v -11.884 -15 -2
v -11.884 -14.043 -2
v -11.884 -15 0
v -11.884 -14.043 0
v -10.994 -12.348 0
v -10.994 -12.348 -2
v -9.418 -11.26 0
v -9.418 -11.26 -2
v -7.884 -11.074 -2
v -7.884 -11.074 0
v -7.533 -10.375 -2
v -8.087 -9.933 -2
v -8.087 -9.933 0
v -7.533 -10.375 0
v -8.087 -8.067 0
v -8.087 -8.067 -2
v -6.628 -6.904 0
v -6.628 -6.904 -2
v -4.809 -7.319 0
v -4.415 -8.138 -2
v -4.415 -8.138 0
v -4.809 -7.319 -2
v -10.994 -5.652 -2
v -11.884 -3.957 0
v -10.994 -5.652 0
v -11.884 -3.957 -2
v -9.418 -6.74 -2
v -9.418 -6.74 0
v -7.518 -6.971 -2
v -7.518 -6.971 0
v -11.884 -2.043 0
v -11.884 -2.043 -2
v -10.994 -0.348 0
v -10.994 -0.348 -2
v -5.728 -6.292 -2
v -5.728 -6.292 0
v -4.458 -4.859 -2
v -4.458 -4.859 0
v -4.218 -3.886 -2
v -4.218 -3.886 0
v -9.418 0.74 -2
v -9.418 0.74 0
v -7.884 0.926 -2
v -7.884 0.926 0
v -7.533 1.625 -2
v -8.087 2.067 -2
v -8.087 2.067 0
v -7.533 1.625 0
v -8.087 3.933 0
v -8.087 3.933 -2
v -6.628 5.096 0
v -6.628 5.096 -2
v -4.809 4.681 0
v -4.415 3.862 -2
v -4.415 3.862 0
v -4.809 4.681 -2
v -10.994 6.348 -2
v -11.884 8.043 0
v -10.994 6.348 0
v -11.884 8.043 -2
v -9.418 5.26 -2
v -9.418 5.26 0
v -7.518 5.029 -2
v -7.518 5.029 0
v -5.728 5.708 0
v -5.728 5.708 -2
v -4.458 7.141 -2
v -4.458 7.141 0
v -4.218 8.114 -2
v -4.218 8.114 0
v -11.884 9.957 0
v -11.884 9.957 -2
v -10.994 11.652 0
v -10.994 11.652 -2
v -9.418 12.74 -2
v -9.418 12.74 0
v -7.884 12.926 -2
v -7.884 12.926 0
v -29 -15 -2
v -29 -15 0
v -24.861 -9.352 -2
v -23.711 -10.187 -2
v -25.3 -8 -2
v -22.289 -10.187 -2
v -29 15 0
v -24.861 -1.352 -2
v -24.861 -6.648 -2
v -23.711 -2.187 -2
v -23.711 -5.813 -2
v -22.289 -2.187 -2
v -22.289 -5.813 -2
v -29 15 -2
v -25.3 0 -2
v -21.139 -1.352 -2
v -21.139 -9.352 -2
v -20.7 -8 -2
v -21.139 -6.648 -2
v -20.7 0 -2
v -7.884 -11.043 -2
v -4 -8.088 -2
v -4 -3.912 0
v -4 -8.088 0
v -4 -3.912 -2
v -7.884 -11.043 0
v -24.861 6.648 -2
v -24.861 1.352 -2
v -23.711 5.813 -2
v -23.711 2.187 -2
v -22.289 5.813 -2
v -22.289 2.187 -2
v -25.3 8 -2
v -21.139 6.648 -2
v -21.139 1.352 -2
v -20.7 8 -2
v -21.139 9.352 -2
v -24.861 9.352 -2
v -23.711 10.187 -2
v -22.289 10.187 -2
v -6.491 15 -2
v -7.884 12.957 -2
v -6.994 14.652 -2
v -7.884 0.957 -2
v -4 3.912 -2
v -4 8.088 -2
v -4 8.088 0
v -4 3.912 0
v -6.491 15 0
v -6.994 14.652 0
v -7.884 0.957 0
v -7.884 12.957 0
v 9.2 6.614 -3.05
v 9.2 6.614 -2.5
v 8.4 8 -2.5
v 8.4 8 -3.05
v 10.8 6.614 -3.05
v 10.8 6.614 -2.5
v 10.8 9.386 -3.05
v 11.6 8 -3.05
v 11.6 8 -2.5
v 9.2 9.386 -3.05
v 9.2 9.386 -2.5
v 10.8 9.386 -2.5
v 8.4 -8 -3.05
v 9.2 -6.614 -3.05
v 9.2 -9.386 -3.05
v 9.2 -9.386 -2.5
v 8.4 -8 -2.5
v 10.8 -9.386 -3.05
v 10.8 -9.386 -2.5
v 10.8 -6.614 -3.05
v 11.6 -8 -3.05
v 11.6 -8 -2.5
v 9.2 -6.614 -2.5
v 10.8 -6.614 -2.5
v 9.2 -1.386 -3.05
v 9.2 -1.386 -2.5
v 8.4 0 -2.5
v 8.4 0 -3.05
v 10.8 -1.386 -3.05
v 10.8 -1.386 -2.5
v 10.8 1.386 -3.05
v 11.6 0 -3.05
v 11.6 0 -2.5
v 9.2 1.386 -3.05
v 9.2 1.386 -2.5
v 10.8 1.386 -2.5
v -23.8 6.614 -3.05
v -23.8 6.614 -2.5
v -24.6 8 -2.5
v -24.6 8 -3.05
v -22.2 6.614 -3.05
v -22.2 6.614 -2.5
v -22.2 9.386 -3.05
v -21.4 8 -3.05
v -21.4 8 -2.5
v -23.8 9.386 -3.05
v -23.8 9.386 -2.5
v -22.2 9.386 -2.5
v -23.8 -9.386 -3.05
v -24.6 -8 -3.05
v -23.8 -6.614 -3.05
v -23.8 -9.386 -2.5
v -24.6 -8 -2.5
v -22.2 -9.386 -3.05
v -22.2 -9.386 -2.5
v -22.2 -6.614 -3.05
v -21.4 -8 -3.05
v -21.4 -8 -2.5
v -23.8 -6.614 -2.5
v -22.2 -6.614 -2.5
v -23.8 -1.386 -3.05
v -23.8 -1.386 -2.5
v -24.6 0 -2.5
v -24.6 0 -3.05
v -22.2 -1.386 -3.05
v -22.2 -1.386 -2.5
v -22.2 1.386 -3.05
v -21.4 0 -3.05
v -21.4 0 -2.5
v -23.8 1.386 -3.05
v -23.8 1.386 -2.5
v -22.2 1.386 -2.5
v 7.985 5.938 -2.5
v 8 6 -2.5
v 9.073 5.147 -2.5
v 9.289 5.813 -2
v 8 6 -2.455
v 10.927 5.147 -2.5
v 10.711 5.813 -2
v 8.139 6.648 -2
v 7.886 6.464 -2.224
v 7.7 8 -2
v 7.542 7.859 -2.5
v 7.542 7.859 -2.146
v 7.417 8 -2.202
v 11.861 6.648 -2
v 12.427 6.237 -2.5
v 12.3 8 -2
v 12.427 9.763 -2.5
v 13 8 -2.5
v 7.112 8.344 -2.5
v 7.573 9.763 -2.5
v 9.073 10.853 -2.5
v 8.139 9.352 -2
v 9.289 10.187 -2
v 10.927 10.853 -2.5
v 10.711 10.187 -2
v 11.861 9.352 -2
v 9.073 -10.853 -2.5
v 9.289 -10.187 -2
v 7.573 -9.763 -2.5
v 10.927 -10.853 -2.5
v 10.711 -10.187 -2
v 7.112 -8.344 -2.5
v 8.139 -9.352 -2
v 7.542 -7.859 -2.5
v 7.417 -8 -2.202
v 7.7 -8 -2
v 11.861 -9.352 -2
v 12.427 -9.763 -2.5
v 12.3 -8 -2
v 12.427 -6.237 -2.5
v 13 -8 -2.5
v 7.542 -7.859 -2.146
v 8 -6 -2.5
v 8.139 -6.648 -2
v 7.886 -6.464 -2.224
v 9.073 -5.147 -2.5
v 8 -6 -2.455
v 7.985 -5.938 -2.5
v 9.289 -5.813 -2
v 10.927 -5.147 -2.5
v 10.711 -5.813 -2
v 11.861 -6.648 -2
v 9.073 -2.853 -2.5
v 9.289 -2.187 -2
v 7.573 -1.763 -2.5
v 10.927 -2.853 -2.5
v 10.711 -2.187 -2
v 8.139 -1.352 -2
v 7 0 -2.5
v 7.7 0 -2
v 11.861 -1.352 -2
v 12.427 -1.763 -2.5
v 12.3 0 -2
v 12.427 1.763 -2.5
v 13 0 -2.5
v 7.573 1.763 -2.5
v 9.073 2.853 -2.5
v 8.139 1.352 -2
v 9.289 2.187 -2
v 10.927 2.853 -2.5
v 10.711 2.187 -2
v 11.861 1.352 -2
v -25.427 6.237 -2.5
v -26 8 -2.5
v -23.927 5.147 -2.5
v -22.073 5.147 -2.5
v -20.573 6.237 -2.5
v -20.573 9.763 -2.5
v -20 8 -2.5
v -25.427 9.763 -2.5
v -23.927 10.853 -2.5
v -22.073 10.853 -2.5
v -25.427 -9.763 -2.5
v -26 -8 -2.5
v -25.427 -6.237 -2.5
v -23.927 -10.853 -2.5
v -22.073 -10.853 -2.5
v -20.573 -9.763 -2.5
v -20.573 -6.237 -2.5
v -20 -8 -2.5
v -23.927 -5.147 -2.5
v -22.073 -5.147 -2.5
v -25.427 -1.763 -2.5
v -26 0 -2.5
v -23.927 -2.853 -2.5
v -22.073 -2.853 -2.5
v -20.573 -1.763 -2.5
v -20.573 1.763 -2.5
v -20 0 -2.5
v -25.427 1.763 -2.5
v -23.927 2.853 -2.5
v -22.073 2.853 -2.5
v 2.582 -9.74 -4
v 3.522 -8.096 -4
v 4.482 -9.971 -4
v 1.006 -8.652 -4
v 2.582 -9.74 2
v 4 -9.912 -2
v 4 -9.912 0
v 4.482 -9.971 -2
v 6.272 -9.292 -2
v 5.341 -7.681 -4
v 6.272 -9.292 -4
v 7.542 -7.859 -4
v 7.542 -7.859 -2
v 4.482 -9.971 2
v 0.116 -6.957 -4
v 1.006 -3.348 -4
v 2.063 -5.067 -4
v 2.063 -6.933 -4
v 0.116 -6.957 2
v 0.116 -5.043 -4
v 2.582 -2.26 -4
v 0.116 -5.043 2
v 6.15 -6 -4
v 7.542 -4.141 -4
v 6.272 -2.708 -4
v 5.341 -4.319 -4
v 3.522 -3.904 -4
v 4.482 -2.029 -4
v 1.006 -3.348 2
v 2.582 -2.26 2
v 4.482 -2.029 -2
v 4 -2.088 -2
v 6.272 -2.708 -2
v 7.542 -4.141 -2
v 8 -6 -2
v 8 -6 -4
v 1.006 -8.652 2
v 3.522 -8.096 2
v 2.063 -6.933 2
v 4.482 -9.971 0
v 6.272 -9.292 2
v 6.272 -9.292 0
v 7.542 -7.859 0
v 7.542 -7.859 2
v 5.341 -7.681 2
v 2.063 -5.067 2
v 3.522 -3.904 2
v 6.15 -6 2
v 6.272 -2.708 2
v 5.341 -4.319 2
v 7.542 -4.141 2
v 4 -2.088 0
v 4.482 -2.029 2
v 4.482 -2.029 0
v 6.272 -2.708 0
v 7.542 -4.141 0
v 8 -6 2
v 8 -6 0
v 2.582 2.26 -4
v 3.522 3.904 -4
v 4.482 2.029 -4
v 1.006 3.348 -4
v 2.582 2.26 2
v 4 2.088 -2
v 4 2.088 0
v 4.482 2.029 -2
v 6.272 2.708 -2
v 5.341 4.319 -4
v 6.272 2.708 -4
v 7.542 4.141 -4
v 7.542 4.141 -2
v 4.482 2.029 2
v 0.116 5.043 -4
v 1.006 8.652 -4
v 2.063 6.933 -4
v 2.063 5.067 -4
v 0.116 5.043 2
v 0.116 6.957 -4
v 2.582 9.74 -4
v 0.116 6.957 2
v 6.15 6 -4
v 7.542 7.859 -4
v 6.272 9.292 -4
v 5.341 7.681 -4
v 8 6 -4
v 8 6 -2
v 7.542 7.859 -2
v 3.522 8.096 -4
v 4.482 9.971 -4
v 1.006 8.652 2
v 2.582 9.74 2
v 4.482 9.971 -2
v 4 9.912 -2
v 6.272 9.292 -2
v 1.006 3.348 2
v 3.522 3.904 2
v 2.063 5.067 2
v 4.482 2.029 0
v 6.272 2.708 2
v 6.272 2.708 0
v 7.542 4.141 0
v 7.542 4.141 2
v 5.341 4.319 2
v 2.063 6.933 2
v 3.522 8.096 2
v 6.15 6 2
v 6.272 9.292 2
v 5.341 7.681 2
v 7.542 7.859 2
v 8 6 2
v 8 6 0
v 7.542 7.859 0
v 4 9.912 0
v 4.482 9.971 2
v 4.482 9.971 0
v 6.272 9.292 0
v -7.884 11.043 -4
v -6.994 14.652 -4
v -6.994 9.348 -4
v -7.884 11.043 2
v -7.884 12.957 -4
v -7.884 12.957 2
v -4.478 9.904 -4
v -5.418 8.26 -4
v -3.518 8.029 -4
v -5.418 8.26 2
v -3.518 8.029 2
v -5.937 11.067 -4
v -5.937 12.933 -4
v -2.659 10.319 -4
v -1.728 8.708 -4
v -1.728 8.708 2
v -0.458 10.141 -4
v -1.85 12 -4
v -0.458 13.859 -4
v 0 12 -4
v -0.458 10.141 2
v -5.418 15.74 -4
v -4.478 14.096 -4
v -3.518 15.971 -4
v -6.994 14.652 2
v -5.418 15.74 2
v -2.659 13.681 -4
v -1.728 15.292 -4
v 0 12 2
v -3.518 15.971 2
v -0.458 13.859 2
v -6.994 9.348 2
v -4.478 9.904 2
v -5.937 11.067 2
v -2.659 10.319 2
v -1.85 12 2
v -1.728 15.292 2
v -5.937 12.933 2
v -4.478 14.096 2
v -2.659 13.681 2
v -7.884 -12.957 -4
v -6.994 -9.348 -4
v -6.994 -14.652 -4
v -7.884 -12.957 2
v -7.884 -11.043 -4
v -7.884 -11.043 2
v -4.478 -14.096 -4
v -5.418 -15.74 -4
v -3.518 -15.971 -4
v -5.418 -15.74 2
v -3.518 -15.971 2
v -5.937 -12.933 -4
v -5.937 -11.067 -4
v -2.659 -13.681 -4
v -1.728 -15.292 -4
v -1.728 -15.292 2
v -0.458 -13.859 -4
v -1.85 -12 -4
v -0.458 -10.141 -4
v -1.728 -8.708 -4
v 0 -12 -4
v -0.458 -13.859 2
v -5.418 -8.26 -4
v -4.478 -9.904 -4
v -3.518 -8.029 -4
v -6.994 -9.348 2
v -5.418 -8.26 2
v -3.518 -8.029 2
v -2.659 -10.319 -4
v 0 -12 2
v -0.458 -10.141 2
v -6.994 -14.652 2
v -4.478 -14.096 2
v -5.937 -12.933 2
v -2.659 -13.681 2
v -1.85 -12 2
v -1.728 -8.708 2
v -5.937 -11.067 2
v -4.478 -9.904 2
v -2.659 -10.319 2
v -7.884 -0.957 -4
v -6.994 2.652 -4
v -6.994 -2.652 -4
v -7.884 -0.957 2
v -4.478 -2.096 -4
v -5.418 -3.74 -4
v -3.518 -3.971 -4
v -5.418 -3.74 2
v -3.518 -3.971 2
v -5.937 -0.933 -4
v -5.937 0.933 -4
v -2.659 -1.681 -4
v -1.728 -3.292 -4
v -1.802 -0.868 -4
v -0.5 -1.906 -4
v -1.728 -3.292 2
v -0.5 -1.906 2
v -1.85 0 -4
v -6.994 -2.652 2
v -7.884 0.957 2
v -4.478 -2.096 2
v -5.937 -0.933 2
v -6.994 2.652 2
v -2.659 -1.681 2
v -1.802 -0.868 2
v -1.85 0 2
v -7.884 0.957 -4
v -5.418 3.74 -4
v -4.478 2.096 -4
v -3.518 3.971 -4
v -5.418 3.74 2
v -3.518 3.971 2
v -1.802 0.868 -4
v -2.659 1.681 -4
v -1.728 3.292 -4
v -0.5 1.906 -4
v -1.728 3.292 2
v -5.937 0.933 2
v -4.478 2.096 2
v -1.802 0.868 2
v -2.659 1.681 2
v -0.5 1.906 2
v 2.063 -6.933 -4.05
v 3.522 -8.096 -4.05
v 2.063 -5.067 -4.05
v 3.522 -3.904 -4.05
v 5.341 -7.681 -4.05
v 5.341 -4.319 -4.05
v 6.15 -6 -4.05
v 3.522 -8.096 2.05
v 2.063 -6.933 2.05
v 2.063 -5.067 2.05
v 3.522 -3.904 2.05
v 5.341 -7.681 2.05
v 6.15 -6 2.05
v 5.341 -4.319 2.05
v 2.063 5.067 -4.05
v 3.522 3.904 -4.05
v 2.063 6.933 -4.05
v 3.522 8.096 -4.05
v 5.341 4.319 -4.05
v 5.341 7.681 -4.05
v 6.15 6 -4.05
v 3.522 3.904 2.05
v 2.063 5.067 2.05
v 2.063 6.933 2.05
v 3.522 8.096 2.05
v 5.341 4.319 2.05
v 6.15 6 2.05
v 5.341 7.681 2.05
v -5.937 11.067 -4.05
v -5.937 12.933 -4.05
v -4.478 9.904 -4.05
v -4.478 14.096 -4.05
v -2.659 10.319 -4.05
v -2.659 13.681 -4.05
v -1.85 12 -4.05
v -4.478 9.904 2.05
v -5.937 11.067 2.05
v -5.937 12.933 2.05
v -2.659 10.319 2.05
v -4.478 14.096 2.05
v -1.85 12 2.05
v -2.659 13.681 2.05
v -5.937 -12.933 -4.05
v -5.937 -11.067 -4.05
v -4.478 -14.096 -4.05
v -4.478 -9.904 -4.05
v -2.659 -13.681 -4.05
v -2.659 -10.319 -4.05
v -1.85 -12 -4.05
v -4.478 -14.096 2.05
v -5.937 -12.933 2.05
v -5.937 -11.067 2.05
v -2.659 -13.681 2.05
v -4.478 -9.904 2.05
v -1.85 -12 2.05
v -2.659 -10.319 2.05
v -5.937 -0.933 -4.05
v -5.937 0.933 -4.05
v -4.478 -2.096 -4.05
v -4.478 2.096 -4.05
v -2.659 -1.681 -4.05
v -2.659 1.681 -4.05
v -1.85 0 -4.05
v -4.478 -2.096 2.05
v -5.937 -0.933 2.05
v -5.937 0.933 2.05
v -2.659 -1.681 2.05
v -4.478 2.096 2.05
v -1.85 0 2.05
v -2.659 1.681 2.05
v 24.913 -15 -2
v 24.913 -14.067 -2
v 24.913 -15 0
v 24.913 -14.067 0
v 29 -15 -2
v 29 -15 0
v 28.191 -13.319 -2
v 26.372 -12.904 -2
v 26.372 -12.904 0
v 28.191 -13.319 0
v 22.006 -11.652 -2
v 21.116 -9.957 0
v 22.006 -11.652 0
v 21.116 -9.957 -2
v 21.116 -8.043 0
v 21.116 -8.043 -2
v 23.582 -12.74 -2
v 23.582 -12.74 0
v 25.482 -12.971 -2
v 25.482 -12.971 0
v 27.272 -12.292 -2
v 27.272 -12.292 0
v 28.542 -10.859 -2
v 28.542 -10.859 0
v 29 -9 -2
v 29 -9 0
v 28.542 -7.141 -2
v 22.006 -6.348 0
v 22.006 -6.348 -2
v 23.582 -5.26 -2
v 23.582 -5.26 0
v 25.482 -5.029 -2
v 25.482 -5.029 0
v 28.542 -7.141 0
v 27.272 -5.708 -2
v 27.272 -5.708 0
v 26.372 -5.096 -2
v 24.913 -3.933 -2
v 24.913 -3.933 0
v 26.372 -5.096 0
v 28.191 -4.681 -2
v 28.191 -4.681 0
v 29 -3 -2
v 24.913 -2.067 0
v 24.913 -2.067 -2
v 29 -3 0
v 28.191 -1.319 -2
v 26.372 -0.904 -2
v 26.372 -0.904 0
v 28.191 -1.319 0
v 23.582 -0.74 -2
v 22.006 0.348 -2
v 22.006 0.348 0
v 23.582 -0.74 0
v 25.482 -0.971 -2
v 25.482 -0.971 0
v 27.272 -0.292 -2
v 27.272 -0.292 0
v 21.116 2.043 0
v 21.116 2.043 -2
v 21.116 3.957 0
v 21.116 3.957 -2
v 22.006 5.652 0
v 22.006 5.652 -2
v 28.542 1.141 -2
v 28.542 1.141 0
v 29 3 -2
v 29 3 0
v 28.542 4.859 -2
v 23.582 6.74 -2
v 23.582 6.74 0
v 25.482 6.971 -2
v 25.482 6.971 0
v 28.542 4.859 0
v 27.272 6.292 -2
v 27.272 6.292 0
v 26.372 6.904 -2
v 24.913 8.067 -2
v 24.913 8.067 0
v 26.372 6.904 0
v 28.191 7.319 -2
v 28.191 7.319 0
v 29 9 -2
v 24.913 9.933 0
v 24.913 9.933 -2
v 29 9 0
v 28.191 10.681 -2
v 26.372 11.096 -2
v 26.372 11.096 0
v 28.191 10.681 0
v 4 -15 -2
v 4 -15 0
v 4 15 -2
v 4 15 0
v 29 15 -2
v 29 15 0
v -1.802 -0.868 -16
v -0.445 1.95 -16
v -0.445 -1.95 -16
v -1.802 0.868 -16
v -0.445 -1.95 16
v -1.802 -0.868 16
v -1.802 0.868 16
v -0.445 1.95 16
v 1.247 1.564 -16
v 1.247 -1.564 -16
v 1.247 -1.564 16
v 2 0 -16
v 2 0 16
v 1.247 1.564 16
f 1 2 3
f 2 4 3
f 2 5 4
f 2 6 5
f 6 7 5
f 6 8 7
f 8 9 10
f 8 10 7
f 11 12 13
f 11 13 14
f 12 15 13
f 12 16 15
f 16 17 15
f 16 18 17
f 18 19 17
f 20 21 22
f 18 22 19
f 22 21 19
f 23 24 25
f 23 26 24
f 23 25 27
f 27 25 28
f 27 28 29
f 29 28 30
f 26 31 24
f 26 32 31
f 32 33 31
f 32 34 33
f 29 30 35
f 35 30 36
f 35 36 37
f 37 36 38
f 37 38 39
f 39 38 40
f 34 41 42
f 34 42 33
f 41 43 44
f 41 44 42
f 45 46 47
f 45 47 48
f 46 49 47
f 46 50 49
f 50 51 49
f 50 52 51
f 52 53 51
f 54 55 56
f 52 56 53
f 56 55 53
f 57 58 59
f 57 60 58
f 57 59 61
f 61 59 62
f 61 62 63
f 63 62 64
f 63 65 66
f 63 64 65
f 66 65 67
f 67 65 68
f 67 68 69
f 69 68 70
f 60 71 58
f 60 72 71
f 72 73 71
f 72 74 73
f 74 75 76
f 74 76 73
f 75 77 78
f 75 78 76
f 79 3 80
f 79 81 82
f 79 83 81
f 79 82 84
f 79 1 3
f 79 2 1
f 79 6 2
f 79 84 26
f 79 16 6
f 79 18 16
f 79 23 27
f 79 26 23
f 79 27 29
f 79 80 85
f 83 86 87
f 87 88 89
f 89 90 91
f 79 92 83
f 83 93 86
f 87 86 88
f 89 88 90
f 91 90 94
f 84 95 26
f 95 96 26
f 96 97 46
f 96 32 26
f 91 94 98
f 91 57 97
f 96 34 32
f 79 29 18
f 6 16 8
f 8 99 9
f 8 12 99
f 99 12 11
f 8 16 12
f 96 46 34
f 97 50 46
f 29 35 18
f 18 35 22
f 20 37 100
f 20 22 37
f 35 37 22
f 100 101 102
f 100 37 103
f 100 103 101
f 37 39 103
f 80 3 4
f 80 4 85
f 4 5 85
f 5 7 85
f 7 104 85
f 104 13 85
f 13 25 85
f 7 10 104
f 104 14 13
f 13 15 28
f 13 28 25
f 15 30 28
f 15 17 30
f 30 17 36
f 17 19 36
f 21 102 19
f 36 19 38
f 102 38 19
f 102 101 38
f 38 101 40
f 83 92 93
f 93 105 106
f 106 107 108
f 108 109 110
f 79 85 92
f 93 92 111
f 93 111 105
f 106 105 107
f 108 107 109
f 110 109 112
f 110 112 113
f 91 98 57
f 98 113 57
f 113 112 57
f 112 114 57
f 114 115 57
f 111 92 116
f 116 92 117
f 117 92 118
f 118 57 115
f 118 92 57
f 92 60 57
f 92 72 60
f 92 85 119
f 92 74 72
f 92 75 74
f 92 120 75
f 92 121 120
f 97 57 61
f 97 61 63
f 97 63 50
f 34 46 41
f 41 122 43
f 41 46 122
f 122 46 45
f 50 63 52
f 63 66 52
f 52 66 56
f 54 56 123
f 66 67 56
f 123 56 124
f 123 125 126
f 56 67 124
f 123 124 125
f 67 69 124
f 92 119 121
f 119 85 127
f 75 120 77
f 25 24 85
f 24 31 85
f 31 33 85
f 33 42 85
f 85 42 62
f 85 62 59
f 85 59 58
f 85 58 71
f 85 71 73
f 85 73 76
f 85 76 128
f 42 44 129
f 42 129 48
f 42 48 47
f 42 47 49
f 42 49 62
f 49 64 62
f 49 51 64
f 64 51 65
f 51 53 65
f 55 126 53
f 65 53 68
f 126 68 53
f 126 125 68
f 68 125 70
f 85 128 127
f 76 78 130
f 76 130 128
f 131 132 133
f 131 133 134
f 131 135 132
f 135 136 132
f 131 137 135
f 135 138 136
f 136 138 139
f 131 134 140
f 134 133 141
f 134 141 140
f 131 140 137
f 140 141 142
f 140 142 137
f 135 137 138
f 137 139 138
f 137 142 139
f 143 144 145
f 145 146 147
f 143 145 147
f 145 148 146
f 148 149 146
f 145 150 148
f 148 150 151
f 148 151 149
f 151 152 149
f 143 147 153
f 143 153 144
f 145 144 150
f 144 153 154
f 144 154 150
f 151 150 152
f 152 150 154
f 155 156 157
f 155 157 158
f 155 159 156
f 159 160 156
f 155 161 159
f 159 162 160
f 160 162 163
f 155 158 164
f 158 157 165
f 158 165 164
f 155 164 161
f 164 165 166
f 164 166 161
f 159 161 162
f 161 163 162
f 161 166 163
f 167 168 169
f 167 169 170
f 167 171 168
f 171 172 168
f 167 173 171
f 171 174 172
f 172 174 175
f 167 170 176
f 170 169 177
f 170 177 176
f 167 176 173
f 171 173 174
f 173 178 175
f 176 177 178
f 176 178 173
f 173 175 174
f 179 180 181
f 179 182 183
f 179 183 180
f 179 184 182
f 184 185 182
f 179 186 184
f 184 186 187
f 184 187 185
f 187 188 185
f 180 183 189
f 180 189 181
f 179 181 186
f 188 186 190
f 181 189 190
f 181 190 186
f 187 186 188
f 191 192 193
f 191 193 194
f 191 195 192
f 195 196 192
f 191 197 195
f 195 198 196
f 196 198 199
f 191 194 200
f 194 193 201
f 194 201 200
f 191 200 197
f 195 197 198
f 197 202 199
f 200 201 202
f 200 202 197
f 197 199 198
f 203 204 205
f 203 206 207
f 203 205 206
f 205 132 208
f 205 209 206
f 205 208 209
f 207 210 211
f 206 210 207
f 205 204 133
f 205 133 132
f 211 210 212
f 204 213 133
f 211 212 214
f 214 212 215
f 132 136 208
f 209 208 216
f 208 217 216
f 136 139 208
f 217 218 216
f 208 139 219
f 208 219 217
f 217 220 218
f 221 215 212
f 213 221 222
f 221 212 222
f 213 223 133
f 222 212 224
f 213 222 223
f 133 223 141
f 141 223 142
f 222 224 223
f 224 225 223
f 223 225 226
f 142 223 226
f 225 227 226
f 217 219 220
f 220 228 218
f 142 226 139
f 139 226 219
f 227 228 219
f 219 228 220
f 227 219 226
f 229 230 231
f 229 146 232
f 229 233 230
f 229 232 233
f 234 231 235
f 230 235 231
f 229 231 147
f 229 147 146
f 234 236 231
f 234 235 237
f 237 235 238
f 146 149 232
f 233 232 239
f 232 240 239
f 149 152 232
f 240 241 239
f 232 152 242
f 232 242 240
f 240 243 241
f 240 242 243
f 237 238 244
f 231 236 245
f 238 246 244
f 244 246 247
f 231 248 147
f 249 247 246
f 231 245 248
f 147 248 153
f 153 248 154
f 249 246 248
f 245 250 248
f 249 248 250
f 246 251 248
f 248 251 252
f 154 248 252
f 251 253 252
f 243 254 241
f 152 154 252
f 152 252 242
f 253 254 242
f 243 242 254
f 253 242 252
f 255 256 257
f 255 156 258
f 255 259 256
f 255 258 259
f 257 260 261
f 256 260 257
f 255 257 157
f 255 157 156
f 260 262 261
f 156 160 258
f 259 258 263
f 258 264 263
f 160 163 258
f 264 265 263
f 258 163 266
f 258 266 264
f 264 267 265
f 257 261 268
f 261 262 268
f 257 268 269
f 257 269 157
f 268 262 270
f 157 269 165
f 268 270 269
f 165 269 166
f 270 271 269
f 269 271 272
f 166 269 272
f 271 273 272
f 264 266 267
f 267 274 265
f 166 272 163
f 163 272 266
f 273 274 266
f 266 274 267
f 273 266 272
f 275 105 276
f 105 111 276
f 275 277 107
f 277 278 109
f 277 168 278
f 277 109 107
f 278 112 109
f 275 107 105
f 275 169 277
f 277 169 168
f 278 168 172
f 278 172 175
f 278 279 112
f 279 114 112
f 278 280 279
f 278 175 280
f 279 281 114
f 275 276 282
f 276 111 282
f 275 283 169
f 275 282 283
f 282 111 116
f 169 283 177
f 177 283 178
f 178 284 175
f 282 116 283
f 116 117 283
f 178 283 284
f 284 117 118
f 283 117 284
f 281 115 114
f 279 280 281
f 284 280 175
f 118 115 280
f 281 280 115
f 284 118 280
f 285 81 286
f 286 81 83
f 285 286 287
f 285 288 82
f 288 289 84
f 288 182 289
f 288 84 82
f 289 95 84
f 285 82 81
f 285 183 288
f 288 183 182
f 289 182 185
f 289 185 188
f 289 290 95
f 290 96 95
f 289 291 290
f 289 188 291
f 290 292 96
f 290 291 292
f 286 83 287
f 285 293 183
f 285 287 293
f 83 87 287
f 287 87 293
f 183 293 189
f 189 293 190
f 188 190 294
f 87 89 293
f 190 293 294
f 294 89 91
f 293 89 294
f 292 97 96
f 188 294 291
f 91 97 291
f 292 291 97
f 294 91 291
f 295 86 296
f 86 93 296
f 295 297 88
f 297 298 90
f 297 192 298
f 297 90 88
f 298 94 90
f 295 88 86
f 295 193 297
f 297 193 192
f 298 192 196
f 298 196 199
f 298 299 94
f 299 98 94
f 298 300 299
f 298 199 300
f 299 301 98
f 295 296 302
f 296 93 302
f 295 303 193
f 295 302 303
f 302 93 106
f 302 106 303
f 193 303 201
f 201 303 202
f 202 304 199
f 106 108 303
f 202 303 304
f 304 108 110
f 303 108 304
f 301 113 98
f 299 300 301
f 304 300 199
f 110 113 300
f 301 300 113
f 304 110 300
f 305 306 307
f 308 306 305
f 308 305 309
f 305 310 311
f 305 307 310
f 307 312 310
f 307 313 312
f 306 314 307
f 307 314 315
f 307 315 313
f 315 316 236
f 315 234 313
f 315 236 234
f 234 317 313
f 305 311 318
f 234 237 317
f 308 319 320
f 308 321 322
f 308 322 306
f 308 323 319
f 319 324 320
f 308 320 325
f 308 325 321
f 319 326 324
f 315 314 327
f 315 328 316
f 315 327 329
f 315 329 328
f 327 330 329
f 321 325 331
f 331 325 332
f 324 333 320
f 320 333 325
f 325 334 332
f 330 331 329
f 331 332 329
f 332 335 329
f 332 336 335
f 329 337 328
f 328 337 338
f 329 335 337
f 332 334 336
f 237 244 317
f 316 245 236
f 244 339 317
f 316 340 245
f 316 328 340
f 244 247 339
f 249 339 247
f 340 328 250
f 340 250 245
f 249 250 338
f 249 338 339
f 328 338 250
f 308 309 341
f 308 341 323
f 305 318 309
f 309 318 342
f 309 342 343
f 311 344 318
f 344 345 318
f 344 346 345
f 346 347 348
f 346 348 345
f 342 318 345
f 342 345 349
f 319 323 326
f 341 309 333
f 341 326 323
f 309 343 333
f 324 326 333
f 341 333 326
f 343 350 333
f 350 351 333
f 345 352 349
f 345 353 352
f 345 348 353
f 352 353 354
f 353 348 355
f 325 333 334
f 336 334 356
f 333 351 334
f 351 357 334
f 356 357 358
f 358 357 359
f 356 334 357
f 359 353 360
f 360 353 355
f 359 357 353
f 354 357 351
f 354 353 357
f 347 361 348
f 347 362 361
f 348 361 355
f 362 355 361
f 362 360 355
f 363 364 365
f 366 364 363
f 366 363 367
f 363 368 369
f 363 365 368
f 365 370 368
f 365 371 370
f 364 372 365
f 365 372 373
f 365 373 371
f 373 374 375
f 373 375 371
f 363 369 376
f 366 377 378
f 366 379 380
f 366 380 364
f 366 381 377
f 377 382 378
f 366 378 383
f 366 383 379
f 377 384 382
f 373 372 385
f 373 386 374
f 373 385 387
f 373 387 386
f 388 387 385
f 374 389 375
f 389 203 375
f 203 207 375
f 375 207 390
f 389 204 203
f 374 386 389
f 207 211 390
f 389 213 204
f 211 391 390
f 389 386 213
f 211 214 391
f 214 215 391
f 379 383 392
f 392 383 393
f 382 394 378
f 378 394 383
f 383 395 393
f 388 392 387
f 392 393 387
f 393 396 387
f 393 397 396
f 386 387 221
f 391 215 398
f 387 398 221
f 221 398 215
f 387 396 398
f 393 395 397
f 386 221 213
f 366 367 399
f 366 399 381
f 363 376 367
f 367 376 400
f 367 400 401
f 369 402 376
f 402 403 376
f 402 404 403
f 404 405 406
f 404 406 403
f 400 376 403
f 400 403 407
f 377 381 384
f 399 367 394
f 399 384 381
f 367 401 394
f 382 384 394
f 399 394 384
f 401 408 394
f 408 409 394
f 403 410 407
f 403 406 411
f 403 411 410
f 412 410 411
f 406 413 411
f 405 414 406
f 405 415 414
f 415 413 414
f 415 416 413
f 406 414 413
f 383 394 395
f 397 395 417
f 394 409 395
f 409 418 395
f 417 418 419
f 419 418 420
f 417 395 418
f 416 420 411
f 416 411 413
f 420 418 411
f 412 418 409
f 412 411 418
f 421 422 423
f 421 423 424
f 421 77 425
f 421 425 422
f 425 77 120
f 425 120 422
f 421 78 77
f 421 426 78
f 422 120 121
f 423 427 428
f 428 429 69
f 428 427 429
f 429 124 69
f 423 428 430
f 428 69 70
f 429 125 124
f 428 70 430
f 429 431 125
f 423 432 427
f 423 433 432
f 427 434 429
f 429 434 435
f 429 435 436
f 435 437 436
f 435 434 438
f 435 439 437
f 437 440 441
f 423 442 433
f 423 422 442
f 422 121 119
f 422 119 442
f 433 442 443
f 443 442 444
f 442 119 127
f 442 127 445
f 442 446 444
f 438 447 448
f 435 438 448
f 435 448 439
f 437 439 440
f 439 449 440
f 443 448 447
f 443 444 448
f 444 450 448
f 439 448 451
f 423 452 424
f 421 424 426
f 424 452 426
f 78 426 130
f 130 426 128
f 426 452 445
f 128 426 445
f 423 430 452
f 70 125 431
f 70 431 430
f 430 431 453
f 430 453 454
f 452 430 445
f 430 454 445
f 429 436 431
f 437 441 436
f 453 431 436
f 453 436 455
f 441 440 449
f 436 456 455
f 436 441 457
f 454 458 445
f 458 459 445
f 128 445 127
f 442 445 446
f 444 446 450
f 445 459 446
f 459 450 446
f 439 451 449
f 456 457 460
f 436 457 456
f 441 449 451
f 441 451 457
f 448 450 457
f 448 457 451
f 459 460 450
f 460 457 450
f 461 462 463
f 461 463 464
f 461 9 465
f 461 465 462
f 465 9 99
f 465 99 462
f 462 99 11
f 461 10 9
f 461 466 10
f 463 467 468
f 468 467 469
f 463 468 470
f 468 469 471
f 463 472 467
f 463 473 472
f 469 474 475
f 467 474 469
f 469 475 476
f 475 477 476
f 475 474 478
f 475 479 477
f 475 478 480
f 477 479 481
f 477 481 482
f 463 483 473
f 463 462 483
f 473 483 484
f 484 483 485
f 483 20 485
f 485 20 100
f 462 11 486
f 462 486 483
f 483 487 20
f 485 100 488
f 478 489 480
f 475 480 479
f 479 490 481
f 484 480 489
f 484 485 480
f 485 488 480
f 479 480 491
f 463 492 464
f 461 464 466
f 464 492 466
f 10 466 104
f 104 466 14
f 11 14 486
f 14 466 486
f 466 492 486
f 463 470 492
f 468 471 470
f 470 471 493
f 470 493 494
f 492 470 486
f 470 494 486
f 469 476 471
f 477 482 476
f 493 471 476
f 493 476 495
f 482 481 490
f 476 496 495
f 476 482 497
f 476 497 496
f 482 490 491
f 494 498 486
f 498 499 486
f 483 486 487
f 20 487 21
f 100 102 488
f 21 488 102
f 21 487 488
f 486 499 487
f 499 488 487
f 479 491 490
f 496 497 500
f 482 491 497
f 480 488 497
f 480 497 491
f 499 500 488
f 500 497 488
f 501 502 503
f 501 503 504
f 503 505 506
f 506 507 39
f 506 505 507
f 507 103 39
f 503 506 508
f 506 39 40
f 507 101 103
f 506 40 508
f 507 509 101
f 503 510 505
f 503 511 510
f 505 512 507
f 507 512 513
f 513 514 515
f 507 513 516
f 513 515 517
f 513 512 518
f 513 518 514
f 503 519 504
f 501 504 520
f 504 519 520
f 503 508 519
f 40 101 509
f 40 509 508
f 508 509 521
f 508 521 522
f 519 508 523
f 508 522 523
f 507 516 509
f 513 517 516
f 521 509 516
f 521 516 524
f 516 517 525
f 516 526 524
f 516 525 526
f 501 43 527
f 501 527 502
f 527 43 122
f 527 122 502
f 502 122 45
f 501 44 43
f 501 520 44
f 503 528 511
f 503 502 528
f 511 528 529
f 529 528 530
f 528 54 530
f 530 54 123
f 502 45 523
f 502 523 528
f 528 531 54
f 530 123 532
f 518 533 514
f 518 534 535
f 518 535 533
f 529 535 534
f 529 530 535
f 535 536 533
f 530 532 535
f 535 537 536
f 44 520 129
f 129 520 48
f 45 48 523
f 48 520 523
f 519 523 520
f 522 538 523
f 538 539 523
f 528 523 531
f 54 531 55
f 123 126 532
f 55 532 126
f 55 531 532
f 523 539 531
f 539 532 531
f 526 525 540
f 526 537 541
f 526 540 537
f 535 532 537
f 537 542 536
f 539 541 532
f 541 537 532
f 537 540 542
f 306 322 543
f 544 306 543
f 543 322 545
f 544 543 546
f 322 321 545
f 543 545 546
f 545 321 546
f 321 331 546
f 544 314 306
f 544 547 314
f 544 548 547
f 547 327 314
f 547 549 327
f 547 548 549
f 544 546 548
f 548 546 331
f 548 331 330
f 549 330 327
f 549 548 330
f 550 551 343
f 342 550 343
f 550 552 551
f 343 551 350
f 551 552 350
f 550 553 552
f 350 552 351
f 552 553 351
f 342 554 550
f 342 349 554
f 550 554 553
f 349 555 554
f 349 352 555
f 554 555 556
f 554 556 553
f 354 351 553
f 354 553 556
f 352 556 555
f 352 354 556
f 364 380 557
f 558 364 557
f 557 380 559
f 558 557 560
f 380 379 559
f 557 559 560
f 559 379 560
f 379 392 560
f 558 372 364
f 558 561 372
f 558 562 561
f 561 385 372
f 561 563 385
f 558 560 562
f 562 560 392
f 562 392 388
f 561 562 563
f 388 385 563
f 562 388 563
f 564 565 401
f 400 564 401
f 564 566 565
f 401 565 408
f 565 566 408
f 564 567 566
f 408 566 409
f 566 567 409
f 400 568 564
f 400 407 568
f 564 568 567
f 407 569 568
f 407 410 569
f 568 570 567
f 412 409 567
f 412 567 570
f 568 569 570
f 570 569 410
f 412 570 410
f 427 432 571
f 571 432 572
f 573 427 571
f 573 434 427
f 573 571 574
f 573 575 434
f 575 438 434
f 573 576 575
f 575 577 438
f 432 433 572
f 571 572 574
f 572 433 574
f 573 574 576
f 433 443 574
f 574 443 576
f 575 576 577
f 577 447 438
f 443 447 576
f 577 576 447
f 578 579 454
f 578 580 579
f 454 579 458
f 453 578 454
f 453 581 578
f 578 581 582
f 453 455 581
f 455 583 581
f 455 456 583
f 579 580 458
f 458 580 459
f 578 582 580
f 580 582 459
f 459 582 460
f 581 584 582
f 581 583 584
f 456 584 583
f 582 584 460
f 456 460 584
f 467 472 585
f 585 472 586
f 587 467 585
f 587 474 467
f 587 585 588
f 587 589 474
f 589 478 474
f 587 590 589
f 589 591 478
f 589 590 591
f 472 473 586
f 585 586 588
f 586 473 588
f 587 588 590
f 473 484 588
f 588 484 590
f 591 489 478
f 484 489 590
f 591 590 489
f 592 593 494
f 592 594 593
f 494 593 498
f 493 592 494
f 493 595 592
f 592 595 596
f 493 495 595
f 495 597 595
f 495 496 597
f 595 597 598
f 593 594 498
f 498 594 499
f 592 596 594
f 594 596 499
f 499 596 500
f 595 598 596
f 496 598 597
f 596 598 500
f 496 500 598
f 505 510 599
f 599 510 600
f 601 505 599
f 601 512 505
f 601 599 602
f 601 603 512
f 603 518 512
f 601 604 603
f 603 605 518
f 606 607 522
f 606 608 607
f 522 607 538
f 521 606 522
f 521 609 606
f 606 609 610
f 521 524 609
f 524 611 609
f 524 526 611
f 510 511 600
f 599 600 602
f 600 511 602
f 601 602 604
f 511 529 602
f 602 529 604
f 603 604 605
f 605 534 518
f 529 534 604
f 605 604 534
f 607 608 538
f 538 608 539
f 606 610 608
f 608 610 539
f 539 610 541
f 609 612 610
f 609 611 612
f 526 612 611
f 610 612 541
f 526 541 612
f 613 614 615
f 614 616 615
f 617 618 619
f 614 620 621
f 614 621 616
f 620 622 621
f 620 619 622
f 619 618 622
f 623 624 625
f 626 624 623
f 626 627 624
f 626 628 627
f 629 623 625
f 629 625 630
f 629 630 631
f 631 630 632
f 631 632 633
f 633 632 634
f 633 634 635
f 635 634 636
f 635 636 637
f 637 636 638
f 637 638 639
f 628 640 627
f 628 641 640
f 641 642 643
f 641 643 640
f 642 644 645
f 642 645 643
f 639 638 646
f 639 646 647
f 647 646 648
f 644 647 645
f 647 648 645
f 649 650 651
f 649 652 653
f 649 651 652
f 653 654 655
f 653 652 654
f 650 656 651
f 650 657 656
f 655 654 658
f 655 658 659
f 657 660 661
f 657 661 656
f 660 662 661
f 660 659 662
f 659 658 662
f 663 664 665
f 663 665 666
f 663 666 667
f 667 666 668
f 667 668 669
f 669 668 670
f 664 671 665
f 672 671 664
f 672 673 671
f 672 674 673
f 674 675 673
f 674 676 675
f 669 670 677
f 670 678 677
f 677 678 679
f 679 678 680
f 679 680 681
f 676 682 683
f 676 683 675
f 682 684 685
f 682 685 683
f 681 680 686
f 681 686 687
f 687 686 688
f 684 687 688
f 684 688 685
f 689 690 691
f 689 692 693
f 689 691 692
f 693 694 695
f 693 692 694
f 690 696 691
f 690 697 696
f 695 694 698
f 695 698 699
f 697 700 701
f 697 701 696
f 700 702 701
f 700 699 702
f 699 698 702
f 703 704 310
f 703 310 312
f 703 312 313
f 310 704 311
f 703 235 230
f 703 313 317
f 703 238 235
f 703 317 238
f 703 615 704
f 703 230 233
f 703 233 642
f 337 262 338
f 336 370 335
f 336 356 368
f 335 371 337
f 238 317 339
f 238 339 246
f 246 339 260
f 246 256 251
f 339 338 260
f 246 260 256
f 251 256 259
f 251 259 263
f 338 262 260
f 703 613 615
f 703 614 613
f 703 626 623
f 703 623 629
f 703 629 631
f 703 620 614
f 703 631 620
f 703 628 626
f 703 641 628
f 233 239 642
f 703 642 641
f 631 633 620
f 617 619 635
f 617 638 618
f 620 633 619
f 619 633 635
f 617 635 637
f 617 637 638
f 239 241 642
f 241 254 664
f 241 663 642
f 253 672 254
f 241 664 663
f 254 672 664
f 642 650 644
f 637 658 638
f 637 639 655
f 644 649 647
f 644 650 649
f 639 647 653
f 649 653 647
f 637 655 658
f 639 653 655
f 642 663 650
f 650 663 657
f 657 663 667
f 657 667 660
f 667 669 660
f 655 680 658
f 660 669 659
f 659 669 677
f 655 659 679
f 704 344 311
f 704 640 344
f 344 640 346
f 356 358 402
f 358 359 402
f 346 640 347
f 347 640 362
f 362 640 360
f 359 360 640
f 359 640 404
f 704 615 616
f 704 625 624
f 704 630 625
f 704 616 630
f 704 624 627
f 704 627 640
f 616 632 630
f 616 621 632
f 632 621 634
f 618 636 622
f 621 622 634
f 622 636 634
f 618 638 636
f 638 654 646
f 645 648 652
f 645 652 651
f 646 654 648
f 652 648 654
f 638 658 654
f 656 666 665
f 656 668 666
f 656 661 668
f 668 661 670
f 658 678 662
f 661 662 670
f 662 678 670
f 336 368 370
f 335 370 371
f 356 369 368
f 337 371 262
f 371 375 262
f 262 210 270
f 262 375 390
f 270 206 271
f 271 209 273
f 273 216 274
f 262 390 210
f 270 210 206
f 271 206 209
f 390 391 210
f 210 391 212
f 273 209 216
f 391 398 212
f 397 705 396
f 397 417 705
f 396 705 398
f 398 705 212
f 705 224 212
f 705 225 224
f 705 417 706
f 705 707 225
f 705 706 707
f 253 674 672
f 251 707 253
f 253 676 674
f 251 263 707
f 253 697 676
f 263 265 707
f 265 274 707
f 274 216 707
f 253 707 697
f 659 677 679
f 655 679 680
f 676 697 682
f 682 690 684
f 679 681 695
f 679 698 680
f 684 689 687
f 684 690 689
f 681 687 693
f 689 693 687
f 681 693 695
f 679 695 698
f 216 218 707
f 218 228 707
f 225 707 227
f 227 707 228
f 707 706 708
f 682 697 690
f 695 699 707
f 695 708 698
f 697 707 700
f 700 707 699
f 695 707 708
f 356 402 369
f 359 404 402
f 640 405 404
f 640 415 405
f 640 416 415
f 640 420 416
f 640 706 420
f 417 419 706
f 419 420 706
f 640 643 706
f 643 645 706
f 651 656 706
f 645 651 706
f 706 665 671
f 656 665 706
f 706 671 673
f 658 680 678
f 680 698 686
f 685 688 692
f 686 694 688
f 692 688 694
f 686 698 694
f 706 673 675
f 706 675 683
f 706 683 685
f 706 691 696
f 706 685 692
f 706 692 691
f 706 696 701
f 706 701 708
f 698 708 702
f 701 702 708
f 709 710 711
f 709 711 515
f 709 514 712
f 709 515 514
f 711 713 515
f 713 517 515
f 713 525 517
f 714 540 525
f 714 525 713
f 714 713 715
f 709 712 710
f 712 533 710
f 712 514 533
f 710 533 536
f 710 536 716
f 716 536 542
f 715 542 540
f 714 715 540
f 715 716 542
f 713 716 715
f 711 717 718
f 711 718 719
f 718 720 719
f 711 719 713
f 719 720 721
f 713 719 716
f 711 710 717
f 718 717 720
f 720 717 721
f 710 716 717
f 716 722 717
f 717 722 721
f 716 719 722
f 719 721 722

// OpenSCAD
// 家具用小型バット蝶番

// 全体の寸法
leaf_width = 25;       // 板の幅 (ヒンジ軸から外側へ)
leaf_length = 30;      // 板の長さ (ヒンジ軸方向)
leaf_thickness = 2;    // 板の厚さ

pin_diameter = 4;      // ピン軸の直径
pin_length = 32;       // ピン軸の長さ

knuckle_outer_diameter = 8;  // knuckle の外径
knuckle_inner_diameter = pin_diameter + 0.3; // knuckle の内径 (クリアランス含む)
knuckle_length = leaf_length / 5; // 各 knuckle の長さ

// 皿穴の寸法
screw_hole_diameter = 3.2;    // 皿穴の貫通部直径
screw_head_diameter = 6;      // 皿頭の最大直径
screw_head_depth = 1;         // 皿頭の深さ
screw_pitch_y = 8;            // 皿穴のY方向ピッチ

// ピン軸
module pin() {
    cylinder(h = pin_length, d = pin_diameter, center = true);
}

// knuckle (筒部)
module knuckle() {
    cylinder(h = knuckle_length, d = knuckle_outer_diameter, center = true);
    cylinder(h = knuckle_length + 0.1, d = knuckle_inner_diameter, center = true); // 貫通穴
}

// 皿穴
module countersunk_hole() {
    cylinder(h = leaf_thickness + 0.1, d = screw_hole_diameter, center = true);
    cylinder(h = screw_head_depth, d1 = screw_head_diameter, d2 = screw_hole_diameter, center = true);
}

// 板モジュール
module leaf(is_left) {
    difference() {
        // 基本の板形状
        cube([leaf_width, leaf_length, leaf_thickness], center = true);

        // knuckle のための切り欠きと穴
        for (i = [0:4]) {
            if ((is_left && (i == 0 || i == 2 || i == 4)) || (!is_left && (i == 1 || i == 3))) {
                translate([
                    leaf_width/2 - knuckle_outer_diameter/2,
                    (i - 2) * knuckle_length - knuckle_length/2, // Y軸方向配置
                    0
                ]) {
                    cylinder(h = leaf_thickness + 0.1, d = knuckle_outer_diameter, center = true);
                }
            } else {
                 translate([
                    leaf_width/2 - knuckle_inner_diameter/2, // 切り欠き位置 (ピン軸の中心)
                    (i - 2) * knuckle_length - knuckle_length/2, // Y軸方向配置
                    0
                 ]) {
                     cylinder(h = leaf_thickness + 0.1, d = knuckle_inner_diameter, center = true);
                 }
            }
        }
    }

    // 皿穴
    for (i = [-1, 0, 1]) {
        translate([
            -leaf_width / 2 + screw_head_diameter / 2 + 3, // 板の端から少し内側
            i * screw_pitch_y,
            -leaf_thickness / 2
        ]) {
            countersunk_hole();
        }
    }
}

// 左板 (knuckle 1, 3, 5番目)
module left_leaf_assembly() {
    translate([-(leaf_width + knuckle_outer_diameter)/2, 0, 0]) {
        leaf(true);
    }
    // knuckle を配置
    for (i = [0, 2, 4]) {
        translate([
            -knuckle_outer_diameter/2, // ピン軸の中心X座標
            (i - 2) * knuckle_length, // Y軸方向配置
            0
        ]) {
            knuckle();
        }
    }
}

// 右板 (knuckle 2, 4番目)
module right_leaf_assembly() {
    translate([(leaf_width + knuckle_outer_diameter)/2, 0, 0]) {
        leaf(false);
    }
    // knuckle を配置
    for (i = [1, 3]) {
        translate([
            knuckle_outer_diameter/2, // ピン軸の中心X座標
            (i - 2) * knuckle_length, // Y軸方向配置
            0
        ]) {
            knuckle();
        }
    }
}

// 最終アセンブリ
union() {
    // ピン軸 (Y軸に沿う)
    translate([0, 0, 0]) {
        pin();
    }

    // 左板とknuckle群
    translate([0, 0, -leaf_thickness / 2]) { // Z軸方向に半分ずらす
        left_leaf_assembly();
    }

    // 右板とknuckle群 (180度開いた状態)
    translate([0, 0, -leaf_thickness / 2]) { // Z軸方向に半分ずらす
        right_leaf_assembly();
    }
}
